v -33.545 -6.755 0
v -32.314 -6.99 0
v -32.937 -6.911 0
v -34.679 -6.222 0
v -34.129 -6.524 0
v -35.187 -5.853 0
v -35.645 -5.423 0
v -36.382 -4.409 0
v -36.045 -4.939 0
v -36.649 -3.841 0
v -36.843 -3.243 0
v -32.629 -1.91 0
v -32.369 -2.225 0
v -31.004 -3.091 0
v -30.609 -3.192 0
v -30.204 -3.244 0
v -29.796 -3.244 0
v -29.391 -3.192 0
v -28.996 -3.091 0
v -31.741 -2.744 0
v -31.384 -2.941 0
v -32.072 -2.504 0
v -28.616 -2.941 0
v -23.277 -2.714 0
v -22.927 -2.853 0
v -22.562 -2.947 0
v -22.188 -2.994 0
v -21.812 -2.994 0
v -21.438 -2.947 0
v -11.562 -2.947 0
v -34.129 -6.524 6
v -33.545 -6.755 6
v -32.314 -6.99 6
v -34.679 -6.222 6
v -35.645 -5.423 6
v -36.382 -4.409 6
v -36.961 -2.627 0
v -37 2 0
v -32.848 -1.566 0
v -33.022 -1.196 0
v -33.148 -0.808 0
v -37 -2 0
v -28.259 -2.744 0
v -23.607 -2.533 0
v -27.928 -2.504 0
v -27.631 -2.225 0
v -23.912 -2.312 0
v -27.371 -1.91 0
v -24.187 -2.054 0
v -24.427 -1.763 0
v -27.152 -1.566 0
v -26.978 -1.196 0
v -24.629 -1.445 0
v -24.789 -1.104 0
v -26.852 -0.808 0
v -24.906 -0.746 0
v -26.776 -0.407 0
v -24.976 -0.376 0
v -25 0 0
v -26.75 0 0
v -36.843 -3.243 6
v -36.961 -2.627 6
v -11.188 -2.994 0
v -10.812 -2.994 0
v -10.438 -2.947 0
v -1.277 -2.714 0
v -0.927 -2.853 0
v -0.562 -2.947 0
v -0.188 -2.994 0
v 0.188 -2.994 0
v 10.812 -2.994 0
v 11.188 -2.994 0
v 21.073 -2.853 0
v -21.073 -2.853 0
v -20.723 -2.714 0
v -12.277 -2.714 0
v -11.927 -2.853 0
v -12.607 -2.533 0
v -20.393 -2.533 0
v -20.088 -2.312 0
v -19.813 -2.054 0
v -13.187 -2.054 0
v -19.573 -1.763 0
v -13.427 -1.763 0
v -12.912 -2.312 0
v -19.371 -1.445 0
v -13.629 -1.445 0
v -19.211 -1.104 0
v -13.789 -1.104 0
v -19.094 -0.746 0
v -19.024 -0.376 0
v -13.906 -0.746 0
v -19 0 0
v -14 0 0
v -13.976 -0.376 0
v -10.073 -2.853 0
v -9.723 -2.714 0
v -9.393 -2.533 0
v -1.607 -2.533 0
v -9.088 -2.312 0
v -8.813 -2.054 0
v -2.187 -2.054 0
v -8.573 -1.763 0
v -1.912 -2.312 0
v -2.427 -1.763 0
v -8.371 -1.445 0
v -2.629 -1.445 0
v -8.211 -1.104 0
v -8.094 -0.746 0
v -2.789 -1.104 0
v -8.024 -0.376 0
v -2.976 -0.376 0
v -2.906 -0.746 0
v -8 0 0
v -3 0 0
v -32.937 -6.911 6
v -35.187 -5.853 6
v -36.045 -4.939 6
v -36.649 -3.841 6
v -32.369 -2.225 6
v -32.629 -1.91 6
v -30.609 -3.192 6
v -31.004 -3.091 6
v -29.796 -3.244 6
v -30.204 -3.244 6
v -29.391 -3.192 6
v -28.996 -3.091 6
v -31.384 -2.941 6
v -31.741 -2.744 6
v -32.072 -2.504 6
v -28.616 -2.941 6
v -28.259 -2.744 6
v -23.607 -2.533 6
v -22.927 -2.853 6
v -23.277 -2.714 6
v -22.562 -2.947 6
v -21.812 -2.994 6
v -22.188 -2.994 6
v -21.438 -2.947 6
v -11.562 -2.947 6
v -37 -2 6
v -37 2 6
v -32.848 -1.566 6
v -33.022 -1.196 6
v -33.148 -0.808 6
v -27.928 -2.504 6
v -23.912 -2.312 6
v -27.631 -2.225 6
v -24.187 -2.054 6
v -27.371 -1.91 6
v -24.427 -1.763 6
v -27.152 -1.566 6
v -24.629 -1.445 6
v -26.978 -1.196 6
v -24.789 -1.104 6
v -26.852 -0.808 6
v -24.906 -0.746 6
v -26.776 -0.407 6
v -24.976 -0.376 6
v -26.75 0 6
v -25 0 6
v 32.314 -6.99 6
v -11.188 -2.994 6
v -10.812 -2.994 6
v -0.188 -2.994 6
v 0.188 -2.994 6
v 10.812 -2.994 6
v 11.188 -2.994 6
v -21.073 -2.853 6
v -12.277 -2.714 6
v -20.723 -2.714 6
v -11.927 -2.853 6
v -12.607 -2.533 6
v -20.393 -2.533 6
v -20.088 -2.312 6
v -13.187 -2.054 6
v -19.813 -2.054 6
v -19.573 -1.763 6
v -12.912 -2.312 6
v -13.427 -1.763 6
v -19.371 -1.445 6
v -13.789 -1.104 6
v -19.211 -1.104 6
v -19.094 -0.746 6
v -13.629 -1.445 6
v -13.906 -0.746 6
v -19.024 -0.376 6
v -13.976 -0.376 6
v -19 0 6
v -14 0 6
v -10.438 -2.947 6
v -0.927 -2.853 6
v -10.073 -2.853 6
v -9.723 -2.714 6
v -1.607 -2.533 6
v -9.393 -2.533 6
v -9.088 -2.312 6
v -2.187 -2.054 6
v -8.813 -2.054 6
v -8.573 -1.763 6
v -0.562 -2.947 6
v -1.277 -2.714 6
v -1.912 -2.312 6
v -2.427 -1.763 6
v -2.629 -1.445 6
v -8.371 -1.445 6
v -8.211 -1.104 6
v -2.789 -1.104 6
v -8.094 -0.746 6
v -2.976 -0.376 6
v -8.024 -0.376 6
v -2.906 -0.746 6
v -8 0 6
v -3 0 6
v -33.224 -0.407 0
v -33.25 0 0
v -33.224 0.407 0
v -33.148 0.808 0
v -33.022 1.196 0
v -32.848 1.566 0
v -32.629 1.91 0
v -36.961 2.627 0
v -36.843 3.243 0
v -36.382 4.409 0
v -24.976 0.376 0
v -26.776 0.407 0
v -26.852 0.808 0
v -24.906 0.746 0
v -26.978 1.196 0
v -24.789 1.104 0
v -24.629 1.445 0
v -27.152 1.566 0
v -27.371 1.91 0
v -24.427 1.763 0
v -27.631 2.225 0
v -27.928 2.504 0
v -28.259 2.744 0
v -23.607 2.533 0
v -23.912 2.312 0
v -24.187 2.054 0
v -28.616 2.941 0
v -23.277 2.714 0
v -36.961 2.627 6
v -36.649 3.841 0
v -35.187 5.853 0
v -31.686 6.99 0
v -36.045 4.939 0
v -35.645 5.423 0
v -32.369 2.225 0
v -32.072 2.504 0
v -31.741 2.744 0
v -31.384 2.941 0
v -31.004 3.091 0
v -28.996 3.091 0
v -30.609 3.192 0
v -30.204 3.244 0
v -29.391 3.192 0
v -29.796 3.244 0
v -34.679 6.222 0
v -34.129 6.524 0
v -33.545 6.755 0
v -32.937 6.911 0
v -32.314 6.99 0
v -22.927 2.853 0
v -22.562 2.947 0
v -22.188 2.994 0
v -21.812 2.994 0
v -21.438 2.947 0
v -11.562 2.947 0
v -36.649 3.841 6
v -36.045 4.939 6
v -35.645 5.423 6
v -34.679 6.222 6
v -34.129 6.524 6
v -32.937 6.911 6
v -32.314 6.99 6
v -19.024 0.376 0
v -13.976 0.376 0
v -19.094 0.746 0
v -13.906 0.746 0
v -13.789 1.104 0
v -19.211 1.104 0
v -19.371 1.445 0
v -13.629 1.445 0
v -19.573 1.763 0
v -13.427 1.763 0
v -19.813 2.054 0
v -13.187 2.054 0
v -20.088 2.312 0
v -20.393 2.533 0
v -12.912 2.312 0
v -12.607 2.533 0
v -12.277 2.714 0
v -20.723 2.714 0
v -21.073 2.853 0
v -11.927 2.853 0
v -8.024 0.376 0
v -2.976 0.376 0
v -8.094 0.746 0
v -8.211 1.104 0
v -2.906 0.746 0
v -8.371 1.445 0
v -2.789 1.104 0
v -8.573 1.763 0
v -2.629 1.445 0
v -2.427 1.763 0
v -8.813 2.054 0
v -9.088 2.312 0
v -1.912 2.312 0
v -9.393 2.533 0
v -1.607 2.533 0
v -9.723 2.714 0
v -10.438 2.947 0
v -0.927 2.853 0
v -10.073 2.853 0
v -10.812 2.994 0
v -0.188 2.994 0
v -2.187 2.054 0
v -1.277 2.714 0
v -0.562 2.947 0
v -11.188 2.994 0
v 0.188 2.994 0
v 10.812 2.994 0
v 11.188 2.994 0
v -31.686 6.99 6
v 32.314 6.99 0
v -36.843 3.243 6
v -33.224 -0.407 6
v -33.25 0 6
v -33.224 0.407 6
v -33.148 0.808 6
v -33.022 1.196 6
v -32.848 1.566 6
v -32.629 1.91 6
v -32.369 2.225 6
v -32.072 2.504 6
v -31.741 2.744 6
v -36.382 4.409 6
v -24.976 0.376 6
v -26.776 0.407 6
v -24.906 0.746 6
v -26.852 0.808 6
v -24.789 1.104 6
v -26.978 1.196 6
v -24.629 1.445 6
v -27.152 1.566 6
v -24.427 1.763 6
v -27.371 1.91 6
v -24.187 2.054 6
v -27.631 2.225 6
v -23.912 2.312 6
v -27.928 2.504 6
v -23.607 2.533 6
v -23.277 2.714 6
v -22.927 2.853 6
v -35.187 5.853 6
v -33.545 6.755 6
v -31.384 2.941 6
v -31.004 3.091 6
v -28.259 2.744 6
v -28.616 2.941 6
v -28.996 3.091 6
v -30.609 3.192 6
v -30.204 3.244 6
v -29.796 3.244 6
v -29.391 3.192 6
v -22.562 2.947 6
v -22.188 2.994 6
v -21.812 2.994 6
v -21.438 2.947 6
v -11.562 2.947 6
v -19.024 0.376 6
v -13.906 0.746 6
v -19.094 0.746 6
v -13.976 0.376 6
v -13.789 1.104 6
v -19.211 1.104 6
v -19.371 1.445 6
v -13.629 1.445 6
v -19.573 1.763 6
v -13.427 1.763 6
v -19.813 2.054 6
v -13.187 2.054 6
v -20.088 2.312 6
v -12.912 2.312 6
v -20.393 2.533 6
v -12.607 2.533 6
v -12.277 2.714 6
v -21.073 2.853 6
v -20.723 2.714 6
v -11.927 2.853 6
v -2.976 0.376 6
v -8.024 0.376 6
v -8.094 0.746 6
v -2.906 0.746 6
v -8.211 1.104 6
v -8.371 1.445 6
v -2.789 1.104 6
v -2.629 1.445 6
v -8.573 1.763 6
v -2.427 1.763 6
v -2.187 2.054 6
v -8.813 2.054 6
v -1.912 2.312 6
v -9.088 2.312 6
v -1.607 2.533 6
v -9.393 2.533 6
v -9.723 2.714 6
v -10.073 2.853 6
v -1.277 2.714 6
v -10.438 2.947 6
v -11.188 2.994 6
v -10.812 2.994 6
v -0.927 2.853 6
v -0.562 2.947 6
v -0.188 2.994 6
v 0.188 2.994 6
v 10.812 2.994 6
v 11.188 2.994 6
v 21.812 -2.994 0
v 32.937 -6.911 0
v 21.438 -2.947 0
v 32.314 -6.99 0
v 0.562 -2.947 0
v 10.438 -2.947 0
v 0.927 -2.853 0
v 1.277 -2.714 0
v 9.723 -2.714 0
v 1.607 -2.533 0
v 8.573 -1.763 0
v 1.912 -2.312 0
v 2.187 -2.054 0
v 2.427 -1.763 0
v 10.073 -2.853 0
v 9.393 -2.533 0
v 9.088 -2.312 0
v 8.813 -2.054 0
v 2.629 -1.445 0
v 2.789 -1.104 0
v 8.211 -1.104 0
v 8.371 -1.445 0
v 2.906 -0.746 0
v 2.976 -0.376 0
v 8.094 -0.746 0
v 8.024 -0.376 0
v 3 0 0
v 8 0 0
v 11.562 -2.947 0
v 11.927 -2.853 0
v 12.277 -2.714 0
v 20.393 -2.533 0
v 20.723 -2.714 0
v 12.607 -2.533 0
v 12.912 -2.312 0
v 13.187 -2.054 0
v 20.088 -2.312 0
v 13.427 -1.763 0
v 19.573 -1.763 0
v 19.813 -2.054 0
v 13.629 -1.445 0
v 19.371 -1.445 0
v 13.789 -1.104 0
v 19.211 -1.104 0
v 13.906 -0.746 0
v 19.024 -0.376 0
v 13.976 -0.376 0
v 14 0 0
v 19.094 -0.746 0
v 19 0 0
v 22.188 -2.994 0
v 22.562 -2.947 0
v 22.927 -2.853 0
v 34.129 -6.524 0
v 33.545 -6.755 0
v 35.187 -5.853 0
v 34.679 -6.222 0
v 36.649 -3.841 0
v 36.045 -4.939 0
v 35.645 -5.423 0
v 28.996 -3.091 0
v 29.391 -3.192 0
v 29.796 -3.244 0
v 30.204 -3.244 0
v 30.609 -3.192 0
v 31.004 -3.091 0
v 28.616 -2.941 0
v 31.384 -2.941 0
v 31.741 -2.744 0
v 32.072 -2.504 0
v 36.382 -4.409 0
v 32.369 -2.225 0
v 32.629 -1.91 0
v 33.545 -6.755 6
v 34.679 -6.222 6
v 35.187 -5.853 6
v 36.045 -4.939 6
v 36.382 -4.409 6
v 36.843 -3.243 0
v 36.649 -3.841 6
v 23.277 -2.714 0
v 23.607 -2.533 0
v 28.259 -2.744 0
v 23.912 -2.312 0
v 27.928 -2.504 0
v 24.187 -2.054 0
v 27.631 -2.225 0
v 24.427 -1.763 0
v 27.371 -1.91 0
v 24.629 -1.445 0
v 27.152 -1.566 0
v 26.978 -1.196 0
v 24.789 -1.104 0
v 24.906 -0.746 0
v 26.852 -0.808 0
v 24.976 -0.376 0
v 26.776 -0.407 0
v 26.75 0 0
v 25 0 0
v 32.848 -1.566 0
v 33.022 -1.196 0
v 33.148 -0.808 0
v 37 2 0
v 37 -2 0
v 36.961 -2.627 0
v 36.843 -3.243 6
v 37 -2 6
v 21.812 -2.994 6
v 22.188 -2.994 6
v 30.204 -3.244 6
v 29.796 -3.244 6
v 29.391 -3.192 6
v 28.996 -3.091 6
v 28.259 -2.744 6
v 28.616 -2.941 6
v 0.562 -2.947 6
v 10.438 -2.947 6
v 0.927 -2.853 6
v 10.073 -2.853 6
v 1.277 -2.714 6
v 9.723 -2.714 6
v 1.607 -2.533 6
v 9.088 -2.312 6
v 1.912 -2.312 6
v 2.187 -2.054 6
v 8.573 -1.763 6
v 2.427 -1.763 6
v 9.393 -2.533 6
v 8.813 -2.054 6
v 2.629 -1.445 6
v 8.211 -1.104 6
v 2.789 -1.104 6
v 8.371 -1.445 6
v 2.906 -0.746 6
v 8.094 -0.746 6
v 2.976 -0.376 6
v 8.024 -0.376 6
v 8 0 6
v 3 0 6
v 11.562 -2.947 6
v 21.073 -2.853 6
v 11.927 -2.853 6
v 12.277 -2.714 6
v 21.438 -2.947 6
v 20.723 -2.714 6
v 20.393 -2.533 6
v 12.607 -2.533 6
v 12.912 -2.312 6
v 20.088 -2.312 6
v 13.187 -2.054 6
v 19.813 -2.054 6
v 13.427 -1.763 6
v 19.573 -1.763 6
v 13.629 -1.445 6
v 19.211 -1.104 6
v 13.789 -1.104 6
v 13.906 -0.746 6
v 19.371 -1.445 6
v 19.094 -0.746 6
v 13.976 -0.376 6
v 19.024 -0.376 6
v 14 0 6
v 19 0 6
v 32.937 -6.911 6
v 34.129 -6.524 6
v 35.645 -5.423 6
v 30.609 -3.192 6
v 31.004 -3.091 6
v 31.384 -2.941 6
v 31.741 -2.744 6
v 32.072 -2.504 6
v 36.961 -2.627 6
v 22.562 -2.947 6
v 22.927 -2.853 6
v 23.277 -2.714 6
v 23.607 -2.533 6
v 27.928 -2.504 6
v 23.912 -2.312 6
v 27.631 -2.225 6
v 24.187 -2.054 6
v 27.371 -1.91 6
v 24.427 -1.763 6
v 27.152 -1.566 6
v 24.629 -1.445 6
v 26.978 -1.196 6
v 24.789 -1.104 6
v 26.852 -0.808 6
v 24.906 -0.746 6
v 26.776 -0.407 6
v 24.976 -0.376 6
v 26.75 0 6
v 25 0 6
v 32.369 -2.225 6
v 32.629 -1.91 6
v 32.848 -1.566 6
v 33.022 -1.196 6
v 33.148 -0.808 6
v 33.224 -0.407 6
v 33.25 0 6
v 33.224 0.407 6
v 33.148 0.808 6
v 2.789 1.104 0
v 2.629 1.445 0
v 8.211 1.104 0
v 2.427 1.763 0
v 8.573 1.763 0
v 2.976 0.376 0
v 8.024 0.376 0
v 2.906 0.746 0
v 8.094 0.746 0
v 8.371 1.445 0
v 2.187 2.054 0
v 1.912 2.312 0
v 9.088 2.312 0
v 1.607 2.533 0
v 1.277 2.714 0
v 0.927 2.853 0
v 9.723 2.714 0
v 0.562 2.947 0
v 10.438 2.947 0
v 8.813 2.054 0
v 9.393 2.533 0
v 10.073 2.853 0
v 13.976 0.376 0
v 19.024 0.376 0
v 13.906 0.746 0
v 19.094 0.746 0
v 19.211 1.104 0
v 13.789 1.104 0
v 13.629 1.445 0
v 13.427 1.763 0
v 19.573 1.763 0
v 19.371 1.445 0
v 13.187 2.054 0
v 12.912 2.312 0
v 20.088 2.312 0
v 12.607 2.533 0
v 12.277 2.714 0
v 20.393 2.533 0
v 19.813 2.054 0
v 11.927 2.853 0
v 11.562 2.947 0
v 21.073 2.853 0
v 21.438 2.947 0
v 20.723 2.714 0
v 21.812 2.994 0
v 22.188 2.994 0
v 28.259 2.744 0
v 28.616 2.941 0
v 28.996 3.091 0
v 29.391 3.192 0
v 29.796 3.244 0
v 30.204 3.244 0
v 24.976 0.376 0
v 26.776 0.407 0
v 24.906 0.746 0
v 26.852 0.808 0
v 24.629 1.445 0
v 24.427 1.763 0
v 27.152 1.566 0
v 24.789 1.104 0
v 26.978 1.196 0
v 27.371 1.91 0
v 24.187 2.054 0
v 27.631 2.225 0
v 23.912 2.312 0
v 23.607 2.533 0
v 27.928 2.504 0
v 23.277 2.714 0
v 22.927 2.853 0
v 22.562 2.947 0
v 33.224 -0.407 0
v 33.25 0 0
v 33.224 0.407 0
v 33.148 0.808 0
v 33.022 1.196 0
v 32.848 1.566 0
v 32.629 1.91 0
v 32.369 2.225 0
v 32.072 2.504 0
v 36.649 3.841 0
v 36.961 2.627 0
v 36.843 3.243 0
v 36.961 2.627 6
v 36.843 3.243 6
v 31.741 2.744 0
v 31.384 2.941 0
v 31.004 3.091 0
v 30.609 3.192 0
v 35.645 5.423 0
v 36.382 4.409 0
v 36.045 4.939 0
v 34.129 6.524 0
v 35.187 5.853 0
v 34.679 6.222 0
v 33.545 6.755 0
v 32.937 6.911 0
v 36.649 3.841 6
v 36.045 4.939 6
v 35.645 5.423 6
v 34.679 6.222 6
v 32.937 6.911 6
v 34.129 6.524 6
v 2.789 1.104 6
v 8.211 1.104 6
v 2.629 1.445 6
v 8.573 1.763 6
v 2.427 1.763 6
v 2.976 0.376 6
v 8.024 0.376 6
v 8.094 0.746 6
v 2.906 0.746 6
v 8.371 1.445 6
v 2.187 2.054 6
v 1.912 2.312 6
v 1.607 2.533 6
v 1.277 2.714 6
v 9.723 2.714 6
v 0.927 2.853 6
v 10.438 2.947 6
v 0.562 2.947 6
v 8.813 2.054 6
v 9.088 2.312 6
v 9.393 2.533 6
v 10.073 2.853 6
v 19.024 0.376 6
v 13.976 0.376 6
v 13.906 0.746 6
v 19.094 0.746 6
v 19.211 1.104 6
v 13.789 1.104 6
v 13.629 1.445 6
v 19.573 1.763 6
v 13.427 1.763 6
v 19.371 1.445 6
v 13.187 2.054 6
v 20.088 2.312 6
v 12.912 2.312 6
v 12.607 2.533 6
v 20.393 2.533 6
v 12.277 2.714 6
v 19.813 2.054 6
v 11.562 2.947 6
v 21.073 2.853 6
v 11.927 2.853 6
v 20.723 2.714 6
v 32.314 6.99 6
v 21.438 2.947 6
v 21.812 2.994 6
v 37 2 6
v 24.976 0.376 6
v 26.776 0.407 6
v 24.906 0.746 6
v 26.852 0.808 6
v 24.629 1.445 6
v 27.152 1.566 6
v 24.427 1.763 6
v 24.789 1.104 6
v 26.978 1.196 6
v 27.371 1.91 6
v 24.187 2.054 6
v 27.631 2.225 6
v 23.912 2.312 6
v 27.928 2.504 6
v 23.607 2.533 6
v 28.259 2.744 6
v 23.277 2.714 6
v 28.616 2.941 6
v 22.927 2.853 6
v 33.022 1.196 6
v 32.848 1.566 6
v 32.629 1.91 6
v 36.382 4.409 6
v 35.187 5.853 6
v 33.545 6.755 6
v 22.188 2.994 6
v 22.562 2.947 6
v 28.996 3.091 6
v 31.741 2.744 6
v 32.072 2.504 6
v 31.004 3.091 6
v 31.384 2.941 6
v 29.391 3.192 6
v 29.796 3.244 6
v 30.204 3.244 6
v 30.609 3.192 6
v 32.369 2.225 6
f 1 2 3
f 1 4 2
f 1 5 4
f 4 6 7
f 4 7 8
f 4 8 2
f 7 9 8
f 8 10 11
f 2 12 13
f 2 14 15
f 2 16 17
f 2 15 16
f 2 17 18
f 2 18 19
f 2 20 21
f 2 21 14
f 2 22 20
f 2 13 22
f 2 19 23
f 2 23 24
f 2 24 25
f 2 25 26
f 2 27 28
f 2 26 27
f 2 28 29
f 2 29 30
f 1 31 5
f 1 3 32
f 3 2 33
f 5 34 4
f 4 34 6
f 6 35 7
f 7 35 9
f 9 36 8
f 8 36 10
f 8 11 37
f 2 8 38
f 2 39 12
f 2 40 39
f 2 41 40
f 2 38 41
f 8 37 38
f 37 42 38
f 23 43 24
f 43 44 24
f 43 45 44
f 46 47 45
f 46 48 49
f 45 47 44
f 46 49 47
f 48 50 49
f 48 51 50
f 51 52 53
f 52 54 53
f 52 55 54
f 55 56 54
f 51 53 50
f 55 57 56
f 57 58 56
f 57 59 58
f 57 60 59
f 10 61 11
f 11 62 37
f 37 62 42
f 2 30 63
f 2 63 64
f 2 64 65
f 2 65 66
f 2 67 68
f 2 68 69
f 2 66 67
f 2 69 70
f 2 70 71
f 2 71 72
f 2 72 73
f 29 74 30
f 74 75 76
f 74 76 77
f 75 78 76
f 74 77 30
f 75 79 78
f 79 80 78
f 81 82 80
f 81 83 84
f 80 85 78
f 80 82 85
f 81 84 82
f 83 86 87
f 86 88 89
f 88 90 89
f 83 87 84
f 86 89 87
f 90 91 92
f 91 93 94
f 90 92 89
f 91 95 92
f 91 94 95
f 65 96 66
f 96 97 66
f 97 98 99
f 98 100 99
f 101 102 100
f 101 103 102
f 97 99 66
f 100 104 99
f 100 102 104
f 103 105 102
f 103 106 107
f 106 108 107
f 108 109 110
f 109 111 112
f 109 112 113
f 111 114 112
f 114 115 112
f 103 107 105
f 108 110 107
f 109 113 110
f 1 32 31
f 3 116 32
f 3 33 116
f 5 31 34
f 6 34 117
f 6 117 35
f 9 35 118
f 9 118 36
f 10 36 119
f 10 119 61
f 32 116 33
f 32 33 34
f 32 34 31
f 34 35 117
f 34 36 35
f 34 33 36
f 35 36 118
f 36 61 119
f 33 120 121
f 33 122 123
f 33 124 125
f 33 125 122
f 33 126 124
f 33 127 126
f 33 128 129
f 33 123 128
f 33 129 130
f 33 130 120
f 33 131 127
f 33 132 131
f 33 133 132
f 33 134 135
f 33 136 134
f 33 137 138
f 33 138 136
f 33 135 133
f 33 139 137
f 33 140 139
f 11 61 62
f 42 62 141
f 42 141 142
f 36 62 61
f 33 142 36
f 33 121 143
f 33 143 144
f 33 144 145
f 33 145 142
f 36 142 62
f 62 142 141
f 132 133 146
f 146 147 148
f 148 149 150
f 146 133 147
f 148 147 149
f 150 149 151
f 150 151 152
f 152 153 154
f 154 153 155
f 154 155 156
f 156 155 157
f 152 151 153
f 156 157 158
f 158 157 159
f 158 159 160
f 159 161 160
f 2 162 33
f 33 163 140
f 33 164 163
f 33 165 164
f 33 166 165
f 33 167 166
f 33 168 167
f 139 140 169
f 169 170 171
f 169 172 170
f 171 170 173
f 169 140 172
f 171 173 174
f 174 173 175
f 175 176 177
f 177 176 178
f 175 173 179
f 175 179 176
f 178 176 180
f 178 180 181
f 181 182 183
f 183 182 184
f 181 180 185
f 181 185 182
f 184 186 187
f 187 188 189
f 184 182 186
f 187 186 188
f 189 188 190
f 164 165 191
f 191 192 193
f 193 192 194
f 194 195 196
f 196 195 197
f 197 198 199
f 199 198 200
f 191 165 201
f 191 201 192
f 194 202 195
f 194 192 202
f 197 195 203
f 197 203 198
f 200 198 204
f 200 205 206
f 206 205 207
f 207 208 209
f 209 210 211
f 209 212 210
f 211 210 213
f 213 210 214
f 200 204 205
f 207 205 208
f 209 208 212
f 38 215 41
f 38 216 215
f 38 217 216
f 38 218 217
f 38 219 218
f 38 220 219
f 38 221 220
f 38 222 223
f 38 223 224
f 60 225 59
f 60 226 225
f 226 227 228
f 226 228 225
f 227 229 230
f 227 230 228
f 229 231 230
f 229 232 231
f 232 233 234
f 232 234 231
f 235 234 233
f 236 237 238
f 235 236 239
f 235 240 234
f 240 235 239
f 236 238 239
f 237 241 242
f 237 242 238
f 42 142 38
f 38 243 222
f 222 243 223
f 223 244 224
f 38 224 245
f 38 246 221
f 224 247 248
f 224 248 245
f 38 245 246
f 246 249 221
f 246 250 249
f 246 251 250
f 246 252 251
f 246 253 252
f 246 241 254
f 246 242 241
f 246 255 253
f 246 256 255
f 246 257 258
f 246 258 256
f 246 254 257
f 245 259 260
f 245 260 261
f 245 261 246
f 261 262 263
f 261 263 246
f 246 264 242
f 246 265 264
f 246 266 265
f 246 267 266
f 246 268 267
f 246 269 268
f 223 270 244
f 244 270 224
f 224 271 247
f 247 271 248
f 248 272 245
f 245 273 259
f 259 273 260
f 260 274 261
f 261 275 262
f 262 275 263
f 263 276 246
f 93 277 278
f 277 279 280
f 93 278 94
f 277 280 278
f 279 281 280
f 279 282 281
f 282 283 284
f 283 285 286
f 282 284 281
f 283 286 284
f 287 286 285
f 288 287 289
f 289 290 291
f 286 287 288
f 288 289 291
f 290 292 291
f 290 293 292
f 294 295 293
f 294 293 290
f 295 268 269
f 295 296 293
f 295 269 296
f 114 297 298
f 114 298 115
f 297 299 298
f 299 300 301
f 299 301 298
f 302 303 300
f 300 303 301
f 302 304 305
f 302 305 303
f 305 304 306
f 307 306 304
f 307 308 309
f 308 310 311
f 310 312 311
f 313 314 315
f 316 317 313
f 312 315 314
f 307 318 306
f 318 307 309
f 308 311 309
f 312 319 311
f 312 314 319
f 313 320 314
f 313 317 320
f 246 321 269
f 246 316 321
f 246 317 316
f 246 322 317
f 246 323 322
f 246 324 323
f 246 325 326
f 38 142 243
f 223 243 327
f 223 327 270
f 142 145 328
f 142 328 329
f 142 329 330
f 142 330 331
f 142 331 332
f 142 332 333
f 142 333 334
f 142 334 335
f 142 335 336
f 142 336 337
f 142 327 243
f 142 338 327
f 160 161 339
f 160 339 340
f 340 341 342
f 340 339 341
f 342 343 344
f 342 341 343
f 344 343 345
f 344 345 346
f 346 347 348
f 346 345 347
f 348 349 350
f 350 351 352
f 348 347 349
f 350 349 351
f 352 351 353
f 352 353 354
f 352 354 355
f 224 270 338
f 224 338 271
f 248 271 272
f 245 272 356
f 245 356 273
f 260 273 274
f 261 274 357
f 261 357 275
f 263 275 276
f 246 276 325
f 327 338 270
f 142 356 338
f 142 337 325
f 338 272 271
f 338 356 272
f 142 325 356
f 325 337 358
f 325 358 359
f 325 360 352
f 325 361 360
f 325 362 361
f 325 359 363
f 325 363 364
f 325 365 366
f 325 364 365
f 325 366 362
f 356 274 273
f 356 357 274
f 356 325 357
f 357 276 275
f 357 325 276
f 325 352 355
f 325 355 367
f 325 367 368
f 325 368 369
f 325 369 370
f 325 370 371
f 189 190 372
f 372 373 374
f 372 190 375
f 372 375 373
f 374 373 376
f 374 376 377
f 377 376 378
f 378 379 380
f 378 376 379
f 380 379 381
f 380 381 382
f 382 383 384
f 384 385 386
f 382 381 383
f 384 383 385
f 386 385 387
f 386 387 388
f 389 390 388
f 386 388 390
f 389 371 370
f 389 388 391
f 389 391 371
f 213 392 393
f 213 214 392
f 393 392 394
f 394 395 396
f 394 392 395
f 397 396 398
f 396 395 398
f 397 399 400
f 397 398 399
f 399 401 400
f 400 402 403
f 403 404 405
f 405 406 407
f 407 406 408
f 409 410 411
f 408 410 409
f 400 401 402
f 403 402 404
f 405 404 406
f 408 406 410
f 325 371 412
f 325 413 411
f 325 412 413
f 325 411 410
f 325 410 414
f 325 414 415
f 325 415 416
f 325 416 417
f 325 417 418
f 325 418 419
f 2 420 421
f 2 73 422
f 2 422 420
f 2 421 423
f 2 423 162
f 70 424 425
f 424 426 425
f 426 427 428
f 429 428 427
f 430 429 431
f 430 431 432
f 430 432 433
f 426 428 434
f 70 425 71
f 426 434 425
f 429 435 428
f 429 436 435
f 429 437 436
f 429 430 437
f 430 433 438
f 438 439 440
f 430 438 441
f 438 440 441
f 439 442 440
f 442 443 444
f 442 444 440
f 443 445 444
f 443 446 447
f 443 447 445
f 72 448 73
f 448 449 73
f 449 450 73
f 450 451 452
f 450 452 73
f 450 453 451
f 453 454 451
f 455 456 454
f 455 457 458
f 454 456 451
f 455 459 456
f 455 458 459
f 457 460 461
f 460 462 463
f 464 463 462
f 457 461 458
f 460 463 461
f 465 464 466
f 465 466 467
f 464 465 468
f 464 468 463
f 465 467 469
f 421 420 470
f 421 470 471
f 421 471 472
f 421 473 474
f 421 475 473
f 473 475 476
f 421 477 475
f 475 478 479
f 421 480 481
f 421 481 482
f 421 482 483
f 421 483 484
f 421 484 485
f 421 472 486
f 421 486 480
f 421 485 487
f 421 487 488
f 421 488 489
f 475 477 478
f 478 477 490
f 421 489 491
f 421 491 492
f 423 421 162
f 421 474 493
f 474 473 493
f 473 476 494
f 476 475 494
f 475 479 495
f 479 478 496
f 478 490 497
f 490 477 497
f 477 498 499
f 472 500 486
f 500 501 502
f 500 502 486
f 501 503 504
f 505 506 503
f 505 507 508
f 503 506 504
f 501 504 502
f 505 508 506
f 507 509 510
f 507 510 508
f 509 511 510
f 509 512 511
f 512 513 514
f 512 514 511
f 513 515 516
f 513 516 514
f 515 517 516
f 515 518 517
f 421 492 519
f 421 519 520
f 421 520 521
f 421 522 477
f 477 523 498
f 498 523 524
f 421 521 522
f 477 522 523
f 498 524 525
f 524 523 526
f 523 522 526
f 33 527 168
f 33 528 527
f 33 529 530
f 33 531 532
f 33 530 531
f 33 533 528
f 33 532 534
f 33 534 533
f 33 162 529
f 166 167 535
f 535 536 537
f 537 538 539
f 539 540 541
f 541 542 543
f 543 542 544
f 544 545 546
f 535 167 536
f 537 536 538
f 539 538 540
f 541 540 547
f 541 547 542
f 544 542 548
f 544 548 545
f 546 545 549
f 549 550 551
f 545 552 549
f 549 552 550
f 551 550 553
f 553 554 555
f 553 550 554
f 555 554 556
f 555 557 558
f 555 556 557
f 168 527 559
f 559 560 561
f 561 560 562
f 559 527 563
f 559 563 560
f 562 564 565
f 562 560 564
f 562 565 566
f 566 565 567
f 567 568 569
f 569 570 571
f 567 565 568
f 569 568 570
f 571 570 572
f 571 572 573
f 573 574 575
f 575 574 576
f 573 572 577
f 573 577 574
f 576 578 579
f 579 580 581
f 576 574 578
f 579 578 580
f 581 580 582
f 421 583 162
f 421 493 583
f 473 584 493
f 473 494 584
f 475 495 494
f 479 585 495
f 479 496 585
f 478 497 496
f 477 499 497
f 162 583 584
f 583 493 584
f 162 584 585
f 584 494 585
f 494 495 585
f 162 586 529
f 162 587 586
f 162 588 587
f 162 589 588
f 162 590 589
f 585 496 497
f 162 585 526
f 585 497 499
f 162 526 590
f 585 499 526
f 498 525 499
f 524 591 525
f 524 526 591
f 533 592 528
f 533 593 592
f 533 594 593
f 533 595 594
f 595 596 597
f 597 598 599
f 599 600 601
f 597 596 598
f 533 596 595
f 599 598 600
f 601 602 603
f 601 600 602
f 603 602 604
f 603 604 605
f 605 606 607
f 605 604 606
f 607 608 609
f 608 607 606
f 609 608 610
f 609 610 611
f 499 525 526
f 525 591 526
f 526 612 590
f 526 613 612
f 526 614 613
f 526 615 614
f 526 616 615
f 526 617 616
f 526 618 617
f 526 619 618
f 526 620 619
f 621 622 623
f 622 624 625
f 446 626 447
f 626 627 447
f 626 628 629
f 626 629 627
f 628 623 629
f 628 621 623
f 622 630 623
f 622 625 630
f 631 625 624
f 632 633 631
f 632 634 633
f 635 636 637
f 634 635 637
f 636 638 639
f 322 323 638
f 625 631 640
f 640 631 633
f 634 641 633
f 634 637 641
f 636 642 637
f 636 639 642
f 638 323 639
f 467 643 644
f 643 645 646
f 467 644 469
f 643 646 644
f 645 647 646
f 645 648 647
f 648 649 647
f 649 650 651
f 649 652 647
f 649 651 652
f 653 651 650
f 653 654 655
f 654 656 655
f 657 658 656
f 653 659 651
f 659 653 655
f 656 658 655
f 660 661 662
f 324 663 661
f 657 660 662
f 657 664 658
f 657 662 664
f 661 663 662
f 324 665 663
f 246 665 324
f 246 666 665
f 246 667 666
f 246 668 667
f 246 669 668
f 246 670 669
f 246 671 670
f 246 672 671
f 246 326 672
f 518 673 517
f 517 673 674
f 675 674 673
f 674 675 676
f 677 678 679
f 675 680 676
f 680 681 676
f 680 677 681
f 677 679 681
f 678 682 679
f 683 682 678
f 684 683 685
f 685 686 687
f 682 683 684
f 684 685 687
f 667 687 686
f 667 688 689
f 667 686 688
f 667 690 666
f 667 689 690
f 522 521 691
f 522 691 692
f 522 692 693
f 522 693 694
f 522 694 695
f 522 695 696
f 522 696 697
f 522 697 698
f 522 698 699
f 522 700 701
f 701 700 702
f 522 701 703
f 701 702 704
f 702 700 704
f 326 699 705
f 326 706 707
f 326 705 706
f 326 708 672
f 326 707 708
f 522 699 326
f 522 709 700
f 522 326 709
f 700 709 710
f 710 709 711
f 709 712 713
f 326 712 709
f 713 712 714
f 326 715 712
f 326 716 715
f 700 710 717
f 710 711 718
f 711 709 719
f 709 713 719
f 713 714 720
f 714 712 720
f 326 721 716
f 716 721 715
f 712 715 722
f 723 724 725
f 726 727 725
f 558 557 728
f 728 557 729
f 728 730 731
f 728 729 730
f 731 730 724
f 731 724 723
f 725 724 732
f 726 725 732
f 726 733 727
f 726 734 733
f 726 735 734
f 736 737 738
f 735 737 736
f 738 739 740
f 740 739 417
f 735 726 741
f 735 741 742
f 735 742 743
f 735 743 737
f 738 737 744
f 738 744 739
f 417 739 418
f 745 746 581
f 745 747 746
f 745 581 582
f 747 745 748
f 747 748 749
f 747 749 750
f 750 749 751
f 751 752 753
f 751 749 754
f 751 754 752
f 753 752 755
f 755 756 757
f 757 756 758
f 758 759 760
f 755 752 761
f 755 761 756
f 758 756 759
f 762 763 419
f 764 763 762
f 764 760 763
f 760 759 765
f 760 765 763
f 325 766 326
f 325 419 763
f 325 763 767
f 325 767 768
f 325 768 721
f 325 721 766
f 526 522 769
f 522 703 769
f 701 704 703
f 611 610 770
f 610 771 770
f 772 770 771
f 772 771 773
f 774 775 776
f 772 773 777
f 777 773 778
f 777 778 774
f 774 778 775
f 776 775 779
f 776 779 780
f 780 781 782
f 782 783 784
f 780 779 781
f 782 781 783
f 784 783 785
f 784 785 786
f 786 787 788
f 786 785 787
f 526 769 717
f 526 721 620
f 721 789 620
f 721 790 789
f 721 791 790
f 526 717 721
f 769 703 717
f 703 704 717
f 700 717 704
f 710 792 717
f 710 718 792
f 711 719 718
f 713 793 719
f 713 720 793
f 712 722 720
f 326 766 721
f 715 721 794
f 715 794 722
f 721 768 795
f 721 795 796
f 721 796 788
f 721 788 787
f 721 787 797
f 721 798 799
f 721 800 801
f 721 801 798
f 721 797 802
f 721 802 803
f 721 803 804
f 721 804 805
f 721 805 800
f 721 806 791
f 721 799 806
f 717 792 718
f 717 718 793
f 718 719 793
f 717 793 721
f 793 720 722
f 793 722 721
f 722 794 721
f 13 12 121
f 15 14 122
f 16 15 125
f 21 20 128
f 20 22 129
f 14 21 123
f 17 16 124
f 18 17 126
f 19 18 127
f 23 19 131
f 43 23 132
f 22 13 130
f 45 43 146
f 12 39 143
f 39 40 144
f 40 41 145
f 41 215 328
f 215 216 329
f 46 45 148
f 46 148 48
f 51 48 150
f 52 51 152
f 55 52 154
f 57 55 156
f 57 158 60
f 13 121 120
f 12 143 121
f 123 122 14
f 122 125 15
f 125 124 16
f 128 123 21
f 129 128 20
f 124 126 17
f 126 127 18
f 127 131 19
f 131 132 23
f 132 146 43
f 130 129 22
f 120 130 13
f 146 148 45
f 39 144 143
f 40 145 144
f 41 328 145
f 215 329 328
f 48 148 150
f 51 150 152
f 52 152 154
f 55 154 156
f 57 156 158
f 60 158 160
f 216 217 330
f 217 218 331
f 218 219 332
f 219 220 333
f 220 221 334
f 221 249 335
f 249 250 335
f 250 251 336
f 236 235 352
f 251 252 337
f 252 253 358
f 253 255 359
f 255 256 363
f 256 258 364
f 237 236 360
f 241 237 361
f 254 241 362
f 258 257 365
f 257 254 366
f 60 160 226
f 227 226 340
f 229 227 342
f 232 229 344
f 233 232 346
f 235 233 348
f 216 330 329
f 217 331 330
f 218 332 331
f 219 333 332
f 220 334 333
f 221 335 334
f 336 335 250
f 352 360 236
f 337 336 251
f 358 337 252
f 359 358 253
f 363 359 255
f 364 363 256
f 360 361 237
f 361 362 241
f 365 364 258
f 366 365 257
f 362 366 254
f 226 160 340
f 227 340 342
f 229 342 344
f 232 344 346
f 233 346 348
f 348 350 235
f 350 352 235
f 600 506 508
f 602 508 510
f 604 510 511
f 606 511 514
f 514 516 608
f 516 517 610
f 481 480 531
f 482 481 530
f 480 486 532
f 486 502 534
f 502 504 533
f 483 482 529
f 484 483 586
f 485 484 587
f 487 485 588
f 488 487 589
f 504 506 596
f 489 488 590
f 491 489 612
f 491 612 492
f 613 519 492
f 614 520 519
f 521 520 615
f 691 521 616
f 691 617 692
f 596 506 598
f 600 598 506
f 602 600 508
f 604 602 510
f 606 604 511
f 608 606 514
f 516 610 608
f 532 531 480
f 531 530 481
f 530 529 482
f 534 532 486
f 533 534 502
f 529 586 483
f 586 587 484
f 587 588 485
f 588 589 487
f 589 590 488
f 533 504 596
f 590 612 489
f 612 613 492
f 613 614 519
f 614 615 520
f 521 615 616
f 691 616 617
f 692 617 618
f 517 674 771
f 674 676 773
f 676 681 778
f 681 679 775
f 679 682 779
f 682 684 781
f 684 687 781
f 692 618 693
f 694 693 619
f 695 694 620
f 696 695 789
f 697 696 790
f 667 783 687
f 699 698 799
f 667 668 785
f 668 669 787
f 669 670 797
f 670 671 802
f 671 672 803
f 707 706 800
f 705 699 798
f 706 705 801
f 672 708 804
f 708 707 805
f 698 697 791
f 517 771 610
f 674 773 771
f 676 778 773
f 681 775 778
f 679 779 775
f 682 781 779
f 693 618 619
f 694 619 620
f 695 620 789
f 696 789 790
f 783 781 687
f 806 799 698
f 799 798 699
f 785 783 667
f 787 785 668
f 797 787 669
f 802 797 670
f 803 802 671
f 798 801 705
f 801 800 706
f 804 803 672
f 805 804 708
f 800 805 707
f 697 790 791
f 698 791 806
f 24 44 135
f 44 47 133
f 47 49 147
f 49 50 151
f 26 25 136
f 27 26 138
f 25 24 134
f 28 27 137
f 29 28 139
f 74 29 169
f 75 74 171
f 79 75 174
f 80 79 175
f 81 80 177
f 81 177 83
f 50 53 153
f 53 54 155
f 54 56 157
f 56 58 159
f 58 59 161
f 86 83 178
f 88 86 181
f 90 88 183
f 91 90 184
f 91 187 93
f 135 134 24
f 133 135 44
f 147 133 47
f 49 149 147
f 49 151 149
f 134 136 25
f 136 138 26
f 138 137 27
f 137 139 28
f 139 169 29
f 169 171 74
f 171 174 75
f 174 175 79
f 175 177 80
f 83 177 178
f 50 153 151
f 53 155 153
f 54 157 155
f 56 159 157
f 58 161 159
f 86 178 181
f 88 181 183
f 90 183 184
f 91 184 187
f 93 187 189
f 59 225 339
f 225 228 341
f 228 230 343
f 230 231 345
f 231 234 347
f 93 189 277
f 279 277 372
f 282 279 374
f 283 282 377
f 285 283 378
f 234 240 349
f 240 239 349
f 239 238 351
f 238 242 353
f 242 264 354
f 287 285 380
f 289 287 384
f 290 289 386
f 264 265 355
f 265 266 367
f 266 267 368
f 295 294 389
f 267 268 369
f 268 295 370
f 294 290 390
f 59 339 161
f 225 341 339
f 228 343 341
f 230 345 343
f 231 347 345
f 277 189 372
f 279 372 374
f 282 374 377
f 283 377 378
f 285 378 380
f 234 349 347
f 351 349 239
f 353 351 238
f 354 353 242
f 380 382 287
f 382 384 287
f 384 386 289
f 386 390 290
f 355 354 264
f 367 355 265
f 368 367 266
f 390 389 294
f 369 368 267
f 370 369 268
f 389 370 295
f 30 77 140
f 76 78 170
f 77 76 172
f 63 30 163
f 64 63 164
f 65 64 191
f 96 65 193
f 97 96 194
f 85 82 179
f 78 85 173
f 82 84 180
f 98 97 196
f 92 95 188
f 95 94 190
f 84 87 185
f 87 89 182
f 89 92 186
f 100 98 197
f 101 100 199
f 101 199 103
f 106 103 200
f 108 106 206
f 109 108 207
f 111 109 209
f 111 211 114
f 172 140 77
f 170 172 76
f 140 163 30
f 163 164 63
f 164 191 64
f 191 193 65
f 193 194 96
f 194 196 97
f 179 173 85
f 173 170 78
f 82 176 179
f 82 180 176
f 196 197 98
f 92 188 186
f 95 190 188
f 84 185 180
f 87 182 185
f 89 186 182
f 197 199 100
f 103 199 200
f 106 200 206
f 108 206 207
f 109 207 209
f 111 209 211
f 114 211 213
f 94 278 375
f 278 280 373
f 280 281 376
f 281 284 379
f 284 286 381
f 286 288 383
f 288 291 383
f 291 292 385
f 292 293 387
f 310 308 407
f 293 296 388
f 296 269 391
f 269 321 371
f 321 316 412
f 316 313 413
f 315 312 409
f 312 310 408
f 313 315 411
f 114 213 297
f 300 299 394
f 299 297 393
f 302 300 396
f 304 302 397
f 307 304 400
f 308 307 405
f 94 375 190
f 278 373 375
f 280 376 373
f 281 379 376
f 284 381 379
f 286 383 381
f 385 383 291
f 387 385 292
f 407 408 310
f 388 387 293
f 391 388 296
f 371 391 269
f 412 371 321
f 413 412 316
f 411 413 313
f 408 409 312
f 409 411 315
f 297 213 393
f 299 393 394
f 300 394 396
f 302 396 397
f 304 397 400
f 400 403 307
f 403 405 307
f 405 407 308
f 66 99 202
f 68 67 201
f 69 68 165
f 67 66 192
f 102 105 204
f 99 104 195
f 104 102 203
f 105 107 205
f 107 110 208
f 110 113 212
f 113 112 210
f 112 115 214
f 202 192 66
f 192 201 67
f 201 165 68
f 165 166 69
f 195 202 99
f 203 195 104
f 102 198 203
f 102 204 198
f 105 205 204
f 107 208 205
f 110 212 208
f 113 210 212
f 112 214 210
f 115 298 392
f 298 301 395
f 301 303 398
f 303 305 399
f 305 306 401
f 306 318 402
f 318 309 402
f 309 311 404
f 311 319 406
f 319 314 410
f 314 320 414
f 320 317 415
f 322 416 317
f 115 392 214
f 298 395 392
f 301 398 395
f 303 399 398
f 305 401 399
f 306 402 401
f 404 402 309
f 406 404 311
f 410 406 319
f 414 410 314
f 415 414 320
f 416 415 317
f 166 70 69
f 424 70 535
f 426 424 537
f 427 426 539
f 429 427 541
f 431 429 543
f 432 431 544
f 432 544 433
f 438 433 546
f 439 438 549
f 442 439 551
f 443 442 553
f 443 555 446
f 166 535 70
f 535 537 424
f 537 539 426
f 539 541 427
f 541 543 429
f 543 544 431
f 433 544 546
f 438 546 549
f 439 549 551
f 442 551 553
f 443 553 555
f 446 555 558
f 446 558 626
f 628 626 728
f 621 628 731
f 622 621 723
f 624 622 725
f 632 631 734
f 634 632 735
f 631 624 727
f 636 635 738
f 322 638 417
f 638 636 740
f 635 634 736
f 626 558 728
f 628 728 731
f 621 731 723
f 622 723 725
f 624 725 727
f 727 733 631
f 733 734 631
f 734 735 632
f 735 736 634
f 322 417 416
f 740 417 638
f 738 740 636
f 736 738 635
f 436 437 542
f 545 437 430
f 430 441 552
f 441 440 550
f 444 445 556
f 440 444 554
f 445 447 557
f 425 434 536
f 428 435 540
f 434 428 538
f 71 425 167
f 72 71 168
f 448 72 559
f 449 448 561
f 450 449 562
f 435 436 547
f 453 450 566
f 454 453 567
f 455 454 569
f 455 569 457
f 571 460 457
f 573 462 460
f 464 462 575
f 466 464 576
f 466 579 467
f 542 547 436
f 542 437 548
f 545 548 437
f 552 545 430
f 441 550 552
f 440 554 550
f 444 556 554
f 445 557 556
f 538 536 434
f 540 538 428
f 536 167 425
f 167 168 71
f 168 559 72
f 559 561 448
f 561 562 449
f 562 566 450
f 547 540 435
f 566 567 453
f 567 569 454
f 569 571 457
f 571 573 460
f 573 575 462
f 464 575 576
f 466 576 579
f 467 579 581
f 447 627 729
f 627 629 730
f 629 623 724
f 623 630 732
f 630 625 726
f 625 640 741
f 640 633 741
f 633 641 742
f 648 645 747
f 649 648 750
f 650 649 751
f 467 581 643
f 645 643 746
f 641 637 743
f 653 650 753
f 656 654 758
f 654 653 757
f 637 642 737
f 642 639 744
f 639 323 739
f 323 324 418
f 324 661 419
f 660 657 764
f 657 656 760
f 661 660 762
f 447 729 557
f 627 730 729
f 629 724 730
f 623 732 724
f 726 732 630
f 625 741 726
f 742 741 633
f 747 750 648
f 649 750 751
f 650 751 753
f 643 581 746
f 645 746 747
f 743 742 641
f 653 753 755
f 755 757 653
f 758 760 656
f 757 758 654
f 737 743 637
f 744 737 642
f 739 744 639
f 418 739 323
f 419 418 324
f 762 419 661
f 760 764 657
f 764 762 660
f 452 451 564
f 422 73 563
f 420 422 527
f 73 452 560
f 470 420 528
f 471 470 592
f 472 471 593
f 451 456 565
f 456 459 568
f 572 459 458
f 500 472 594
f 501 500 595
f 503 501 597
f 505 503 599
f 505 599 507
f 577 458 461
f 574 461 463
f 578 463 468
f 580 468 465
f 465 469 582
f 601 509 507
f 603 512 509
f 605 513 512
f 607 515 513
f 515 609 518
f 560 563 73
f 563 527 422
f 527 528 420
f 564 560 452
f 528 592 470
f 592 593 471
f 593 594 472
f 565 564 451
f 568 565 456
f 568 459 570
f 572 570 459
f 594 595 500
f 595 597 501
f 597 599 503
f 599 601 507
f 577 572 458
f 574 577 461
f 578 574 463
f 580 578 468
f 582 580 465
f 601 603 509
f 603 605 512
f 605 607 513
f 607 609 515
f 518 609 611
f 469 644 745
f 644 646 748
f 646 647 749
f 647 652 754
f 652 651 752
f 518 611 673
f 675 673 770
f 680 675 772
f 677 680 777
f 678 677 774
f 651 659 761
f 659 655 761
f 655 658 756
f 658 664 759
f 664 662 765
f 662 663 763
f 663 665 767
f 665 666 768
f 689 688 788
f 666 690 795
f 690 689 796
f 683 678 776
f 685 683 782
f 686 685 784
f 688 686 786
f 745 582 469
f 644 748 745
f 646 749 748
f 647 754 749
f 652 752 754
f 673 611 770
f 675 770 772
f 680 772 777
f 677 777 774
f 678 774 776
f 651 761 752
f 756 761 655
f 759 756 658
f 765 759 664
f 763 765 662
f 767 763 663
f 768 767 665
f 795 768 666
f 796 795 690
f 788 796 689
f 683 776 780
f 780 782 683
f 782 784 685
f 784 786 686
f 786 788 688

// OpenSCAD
$fn = 50;

difference() {
	union() {
		hull() {
			translate(v = [-32.0, 2.0, 0]) {
				cylinder(h = 6, r = 5);
			}
			translate(v = [32.0, 2.0, 0]) {
				cylinder(h = 6, r = 5);
			}
			translate(v = [-32.0, -2.0, 0]) {
				cylinder(h = 6, r = 5);
			}
			translate(v = [32.0, -2.0, 0]) {
				cylinder(h = 6, r = 5);
			}
		}
	}
	union() {
		translate(v = [-30.0, 0.0, 0]) {
			cylinder(h = 6, r = 3.25);
		}
		translate(v = [30.0, 0.0, 0]) {
			cylinder(h = 6, r = 3.25);
		}
		translate(v = [-22.0, 0, 0.0]) {
			cylinder(h = 6, r = 3.0);
		}
		translate(v = [-11.0, 0, 0.0]) {
			cylinder(h = 6, r = 3.0);
		}
		cylinder(h = 6, r = 3.0);
		translate(v = [11.0, 0, 0.0]) {
			cylinder(h = 6, r = 3.0);
		}
		translate(v = [22.0, 0, 0.0]) {
			cylinder(h = 6, r = 3.0);
		}
	}
}
